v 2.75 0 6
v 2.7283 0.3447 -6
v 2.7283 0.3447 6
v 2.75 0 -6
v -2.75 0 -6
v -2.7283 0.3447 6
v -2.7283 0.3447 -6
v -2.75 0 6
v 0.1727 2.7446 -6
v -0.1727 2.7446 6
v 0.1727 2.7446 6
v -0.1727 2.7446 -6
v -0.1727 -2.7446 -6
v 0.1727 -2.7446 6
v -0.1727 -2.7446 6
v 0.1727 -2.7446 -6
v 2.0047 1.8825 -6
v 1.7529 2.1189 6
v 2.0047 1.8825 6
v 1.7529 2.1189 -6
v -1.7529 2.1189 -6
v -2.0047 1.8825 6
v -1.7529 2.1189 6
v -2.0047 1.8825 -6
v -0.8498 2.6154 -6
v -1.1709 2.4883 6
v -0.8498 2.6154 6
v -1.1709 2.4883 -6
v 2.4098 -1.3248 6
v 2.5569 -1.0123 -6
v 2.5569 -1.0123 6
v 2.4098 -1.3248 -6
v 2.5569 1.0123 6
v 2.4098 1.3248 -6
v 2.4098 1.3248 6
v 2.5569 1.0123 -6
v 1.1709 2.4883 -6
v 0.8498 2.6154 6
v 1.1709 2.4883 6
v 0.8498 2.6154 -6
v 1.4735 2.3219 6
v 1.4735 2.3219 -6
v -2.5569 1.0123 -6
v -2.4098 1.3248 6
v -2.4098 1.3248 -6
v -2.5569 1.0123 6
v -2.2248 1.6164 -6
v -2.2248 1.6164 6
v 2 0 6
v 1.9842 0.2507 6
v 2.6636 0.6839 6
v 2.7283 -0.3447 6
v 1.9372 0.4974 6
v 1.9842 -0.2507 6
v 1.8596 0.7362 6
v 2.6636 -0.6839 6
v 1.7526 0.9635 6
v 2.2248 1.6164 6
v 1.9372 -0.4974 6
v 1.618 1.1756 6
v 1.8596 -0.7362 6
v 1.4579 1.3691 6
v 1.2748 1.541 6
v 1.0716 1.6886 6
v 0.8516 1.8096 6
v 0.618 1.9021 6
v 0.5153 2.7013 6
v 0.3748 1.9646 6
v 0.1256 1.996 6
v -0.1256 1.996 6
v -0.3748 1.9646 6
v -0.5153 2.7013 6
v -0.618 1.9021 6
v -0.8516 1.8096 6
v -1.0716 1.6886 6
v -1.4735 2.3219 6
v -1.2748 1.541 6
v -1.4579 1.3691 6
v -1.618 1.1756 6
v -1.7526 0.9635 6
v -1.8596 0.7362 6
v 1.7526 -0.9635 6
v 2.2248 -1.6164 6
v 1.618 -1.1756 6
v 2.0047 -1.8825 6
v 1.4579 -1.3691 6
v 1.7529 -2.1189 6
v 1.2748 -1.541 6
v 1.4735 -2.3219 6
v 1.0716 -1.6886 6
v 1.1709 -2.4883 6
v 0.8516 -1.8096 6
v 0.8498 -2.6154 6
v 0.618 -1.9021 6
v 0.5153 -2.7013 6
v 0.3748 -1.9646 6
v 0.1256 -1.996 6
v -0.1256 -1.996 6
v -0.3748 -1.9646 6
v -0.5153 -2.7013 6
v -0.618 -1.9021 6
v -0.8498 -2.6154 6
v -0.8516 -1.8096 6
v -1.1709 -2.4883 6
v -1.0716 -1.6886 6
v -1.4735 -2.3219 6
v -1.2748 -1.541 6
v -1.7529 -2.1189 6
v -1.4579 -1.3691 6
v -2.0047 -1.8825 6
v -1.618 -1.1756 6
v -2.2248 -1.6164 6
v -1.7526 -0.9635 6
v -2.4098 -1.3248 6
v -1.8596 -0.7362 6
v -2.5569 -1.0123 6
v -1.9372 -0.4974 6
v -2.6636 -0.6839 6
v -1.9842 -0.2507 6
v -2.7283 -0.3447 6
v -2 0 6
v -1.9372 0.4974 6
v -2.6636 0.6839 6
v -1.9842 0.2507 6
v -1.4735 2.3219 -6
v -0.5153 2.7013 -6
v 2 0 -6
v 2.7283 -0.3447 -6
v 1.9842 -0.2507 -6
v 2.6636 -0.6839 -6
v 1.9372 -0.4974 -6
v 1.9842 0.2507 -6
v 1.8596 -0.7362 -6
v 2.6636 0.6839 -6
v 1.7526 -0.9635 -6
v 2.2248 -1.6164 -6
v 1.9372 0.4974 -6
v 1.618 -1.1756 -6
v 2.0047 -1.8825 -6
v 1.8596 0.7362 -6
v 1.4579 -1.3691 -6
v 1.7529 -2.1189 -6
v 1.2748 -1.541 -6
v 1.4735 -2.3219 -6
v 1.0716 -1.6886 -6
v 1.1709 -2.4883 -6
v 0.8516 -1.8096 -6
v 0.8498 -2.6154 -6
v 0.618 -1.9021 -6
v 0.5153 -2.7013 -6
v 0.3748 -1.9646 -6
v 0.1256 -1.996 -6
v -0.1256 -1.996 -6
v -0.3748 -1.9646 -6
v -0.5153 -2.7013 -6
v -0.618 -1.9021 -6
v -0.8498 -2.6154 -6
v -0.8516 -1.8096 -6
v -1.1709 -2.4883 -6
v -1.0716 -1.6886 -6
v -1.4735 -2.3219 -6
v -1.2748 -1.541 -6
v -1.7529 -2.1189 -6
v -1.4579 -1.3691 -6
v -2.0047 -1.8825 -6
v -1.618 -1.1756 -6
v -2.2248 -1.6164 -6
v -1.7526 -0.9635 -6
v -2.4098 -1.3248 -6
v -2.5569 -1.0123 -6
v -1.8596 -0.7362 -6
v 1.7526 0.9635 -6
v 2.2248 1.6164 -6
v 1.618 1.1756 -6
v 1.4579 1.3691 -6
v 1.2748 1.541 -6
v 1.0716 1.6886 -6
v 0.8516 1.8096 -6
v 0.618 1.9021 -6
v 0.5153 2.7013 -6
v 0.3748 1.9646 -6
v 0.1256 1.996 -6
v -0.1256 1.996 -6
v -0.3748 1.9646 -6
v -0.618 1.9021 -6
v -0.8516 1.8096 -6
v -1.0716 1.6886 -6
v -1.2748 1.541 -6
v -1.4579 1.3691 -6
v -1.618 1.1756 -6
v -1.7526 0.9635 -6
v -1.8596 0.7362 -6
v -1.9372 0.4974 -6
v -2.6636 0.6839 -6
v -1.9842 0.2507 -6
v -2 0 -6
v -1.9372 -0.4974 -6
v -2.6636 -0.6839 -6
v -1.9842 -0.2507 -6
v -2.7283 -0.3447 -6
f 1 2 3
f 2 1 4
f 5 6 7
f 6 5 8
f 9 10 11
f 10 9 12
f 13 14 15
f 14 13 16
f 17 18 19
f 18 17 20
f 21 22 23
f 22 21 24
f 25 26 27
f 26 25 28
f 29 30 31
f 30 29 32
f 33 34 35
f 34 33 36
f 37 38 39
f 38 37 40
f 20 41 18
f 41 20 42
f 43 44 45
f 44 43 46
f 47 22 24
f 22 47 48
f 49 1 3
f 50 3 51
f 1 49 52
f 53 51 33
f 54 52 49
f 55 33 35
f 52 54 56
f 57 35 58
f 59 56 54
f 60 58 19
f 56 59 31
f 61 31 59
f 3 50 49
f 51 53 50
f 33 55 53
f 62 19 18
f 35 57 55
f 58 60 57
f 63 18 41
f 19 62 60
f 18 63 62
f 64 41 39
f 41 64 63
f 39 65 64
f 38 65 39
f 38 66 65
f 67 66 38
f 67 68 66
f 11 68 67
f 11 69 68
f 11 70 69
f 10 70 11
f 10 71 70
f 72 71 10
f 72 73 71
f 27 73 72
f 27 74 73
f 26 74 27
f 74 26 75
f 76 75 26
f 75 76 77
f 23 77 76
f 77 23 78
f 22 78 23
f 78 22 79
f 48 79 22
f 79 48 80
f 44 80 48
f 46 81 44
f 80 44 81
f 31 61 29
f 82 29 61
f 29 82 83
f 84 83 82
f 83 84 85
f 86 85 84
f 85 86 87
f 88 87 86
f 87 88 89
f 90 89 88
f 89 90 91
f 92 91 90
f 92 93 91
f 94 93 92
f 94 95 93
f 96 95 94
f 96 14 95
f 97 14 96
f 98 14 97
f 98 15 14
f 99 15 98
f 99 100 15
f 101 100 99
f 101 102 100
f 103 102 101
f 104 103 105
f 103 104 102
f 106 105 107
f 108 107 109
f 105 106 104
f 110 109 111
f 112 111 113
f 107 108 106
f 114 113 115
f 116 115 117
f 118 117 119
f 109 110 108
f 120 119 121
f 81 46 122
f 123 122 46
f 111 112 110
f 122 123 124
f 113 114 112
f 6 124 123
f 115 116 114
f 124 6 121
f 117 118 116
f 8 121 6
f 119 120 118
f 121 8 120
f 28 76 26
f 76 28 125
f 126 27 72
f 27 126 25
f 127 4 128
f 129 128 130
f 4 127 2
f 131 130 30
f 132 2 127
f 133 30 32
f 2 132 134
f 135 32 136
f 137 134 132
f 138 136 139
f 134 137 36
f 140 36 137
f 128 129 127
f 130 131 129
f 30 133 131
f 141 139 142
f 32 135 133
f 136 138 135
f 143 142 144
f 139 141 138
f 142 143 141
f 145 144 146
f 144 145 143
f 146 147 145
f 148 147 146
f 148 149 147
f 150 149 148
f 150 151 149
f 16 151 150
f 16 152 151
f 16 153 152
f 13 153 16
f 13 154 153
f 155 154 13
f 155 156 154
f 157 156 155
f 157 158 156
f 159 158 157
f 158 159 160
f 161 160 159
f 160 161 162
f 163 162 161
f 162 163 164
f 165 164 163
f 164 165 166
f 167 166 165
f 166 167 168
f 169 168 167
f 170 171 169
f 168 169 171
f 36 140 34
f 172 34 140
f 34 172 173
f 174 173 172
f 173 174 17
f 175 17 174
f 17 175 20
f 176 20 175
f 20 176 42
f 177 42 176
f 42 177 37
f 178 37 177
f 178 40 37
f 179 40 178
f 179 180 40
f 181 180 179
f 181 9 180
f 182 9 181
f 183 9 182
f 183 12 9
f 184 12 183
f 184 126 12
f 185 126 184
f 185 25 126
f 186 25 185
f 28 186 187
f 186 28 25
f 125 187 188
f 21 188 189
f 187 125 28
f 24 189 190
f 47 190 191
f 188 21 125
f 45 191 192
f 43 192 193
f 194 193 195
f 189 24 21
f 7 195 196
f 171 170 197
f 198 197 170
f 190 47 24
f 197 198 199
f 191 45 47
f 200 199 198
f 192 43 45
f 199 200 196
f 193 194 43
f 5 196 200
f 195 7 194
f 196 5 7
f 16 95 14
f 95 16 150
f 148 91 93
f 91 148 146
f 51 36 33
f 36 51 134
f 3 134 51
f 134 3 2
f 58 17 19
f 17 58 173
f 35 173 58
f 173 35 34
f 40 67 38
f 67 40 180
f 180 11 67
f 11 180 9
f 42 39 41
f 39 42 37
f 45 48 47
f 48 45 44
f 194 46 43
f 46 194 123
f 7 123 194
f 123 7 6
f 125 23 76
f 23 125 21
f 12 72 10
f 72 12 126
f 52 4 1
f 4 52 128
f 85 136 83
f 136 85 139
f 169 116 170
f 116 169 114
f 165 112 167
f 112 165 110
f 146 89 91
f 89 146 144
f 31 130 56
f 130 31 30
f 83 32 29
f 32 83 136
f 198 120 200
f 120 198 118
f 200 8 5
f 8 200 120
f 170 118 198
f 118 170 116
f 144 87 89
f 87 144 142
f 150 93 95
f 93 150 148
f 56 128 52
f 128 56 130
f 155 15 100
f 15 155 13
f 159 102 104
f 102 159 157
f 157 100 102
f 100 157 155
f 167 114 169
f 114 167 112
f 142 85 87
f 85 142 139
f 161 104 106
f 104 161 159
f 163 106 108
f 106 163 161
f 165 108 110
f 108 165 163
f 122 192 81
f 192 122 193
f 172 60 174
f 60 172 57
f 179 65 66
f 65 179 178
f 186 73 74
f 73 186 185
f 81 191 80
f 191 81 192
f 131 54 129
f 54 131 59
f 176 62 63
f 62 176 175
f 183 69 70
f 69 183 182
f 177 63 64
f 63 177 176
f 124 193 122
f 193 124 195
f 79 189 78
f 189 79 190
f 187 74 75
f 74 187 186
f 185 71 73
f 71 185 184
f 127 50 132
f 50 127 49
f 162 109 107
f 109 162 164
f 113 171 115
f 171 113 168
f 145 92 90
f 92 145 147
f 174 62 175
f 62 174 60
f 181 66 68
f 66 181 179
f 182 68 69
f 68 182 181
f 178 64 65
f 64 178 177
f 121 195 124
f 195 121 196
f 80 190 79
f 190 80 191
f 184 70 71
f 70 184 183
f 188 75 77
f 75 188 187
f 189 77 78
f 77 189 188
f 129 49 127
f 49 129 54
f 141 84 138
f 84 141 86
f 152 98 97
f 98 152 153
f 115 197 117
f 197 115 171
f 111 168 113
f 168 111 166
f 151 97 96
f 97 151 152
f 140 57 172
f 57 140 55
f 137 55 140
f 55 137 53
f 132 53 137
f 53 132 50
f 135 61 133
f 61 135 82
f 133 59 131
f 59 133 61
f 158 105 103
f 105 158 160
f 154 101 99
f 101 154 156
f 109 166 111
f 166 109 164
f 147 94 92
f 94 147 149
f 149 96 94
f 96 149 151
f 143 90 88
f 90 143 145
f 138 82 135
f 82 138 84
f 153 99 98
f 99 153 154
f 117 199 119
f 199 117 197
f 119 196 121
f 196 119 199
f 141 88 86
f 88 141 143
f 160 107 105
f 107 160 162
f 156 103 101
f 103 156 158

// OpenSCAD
$fn = 50;


difference() {
	union() {
		translate(v = [0, 0, -6.0000000000]) {
			cylinder(h = 12, r = 2.7500000000);
		}
	}
	union() {
		translate(v = [0, 0, -100.0000000000]) {
			cylinder(h = 200, r = 2.0000000000);
		}
	}
}
